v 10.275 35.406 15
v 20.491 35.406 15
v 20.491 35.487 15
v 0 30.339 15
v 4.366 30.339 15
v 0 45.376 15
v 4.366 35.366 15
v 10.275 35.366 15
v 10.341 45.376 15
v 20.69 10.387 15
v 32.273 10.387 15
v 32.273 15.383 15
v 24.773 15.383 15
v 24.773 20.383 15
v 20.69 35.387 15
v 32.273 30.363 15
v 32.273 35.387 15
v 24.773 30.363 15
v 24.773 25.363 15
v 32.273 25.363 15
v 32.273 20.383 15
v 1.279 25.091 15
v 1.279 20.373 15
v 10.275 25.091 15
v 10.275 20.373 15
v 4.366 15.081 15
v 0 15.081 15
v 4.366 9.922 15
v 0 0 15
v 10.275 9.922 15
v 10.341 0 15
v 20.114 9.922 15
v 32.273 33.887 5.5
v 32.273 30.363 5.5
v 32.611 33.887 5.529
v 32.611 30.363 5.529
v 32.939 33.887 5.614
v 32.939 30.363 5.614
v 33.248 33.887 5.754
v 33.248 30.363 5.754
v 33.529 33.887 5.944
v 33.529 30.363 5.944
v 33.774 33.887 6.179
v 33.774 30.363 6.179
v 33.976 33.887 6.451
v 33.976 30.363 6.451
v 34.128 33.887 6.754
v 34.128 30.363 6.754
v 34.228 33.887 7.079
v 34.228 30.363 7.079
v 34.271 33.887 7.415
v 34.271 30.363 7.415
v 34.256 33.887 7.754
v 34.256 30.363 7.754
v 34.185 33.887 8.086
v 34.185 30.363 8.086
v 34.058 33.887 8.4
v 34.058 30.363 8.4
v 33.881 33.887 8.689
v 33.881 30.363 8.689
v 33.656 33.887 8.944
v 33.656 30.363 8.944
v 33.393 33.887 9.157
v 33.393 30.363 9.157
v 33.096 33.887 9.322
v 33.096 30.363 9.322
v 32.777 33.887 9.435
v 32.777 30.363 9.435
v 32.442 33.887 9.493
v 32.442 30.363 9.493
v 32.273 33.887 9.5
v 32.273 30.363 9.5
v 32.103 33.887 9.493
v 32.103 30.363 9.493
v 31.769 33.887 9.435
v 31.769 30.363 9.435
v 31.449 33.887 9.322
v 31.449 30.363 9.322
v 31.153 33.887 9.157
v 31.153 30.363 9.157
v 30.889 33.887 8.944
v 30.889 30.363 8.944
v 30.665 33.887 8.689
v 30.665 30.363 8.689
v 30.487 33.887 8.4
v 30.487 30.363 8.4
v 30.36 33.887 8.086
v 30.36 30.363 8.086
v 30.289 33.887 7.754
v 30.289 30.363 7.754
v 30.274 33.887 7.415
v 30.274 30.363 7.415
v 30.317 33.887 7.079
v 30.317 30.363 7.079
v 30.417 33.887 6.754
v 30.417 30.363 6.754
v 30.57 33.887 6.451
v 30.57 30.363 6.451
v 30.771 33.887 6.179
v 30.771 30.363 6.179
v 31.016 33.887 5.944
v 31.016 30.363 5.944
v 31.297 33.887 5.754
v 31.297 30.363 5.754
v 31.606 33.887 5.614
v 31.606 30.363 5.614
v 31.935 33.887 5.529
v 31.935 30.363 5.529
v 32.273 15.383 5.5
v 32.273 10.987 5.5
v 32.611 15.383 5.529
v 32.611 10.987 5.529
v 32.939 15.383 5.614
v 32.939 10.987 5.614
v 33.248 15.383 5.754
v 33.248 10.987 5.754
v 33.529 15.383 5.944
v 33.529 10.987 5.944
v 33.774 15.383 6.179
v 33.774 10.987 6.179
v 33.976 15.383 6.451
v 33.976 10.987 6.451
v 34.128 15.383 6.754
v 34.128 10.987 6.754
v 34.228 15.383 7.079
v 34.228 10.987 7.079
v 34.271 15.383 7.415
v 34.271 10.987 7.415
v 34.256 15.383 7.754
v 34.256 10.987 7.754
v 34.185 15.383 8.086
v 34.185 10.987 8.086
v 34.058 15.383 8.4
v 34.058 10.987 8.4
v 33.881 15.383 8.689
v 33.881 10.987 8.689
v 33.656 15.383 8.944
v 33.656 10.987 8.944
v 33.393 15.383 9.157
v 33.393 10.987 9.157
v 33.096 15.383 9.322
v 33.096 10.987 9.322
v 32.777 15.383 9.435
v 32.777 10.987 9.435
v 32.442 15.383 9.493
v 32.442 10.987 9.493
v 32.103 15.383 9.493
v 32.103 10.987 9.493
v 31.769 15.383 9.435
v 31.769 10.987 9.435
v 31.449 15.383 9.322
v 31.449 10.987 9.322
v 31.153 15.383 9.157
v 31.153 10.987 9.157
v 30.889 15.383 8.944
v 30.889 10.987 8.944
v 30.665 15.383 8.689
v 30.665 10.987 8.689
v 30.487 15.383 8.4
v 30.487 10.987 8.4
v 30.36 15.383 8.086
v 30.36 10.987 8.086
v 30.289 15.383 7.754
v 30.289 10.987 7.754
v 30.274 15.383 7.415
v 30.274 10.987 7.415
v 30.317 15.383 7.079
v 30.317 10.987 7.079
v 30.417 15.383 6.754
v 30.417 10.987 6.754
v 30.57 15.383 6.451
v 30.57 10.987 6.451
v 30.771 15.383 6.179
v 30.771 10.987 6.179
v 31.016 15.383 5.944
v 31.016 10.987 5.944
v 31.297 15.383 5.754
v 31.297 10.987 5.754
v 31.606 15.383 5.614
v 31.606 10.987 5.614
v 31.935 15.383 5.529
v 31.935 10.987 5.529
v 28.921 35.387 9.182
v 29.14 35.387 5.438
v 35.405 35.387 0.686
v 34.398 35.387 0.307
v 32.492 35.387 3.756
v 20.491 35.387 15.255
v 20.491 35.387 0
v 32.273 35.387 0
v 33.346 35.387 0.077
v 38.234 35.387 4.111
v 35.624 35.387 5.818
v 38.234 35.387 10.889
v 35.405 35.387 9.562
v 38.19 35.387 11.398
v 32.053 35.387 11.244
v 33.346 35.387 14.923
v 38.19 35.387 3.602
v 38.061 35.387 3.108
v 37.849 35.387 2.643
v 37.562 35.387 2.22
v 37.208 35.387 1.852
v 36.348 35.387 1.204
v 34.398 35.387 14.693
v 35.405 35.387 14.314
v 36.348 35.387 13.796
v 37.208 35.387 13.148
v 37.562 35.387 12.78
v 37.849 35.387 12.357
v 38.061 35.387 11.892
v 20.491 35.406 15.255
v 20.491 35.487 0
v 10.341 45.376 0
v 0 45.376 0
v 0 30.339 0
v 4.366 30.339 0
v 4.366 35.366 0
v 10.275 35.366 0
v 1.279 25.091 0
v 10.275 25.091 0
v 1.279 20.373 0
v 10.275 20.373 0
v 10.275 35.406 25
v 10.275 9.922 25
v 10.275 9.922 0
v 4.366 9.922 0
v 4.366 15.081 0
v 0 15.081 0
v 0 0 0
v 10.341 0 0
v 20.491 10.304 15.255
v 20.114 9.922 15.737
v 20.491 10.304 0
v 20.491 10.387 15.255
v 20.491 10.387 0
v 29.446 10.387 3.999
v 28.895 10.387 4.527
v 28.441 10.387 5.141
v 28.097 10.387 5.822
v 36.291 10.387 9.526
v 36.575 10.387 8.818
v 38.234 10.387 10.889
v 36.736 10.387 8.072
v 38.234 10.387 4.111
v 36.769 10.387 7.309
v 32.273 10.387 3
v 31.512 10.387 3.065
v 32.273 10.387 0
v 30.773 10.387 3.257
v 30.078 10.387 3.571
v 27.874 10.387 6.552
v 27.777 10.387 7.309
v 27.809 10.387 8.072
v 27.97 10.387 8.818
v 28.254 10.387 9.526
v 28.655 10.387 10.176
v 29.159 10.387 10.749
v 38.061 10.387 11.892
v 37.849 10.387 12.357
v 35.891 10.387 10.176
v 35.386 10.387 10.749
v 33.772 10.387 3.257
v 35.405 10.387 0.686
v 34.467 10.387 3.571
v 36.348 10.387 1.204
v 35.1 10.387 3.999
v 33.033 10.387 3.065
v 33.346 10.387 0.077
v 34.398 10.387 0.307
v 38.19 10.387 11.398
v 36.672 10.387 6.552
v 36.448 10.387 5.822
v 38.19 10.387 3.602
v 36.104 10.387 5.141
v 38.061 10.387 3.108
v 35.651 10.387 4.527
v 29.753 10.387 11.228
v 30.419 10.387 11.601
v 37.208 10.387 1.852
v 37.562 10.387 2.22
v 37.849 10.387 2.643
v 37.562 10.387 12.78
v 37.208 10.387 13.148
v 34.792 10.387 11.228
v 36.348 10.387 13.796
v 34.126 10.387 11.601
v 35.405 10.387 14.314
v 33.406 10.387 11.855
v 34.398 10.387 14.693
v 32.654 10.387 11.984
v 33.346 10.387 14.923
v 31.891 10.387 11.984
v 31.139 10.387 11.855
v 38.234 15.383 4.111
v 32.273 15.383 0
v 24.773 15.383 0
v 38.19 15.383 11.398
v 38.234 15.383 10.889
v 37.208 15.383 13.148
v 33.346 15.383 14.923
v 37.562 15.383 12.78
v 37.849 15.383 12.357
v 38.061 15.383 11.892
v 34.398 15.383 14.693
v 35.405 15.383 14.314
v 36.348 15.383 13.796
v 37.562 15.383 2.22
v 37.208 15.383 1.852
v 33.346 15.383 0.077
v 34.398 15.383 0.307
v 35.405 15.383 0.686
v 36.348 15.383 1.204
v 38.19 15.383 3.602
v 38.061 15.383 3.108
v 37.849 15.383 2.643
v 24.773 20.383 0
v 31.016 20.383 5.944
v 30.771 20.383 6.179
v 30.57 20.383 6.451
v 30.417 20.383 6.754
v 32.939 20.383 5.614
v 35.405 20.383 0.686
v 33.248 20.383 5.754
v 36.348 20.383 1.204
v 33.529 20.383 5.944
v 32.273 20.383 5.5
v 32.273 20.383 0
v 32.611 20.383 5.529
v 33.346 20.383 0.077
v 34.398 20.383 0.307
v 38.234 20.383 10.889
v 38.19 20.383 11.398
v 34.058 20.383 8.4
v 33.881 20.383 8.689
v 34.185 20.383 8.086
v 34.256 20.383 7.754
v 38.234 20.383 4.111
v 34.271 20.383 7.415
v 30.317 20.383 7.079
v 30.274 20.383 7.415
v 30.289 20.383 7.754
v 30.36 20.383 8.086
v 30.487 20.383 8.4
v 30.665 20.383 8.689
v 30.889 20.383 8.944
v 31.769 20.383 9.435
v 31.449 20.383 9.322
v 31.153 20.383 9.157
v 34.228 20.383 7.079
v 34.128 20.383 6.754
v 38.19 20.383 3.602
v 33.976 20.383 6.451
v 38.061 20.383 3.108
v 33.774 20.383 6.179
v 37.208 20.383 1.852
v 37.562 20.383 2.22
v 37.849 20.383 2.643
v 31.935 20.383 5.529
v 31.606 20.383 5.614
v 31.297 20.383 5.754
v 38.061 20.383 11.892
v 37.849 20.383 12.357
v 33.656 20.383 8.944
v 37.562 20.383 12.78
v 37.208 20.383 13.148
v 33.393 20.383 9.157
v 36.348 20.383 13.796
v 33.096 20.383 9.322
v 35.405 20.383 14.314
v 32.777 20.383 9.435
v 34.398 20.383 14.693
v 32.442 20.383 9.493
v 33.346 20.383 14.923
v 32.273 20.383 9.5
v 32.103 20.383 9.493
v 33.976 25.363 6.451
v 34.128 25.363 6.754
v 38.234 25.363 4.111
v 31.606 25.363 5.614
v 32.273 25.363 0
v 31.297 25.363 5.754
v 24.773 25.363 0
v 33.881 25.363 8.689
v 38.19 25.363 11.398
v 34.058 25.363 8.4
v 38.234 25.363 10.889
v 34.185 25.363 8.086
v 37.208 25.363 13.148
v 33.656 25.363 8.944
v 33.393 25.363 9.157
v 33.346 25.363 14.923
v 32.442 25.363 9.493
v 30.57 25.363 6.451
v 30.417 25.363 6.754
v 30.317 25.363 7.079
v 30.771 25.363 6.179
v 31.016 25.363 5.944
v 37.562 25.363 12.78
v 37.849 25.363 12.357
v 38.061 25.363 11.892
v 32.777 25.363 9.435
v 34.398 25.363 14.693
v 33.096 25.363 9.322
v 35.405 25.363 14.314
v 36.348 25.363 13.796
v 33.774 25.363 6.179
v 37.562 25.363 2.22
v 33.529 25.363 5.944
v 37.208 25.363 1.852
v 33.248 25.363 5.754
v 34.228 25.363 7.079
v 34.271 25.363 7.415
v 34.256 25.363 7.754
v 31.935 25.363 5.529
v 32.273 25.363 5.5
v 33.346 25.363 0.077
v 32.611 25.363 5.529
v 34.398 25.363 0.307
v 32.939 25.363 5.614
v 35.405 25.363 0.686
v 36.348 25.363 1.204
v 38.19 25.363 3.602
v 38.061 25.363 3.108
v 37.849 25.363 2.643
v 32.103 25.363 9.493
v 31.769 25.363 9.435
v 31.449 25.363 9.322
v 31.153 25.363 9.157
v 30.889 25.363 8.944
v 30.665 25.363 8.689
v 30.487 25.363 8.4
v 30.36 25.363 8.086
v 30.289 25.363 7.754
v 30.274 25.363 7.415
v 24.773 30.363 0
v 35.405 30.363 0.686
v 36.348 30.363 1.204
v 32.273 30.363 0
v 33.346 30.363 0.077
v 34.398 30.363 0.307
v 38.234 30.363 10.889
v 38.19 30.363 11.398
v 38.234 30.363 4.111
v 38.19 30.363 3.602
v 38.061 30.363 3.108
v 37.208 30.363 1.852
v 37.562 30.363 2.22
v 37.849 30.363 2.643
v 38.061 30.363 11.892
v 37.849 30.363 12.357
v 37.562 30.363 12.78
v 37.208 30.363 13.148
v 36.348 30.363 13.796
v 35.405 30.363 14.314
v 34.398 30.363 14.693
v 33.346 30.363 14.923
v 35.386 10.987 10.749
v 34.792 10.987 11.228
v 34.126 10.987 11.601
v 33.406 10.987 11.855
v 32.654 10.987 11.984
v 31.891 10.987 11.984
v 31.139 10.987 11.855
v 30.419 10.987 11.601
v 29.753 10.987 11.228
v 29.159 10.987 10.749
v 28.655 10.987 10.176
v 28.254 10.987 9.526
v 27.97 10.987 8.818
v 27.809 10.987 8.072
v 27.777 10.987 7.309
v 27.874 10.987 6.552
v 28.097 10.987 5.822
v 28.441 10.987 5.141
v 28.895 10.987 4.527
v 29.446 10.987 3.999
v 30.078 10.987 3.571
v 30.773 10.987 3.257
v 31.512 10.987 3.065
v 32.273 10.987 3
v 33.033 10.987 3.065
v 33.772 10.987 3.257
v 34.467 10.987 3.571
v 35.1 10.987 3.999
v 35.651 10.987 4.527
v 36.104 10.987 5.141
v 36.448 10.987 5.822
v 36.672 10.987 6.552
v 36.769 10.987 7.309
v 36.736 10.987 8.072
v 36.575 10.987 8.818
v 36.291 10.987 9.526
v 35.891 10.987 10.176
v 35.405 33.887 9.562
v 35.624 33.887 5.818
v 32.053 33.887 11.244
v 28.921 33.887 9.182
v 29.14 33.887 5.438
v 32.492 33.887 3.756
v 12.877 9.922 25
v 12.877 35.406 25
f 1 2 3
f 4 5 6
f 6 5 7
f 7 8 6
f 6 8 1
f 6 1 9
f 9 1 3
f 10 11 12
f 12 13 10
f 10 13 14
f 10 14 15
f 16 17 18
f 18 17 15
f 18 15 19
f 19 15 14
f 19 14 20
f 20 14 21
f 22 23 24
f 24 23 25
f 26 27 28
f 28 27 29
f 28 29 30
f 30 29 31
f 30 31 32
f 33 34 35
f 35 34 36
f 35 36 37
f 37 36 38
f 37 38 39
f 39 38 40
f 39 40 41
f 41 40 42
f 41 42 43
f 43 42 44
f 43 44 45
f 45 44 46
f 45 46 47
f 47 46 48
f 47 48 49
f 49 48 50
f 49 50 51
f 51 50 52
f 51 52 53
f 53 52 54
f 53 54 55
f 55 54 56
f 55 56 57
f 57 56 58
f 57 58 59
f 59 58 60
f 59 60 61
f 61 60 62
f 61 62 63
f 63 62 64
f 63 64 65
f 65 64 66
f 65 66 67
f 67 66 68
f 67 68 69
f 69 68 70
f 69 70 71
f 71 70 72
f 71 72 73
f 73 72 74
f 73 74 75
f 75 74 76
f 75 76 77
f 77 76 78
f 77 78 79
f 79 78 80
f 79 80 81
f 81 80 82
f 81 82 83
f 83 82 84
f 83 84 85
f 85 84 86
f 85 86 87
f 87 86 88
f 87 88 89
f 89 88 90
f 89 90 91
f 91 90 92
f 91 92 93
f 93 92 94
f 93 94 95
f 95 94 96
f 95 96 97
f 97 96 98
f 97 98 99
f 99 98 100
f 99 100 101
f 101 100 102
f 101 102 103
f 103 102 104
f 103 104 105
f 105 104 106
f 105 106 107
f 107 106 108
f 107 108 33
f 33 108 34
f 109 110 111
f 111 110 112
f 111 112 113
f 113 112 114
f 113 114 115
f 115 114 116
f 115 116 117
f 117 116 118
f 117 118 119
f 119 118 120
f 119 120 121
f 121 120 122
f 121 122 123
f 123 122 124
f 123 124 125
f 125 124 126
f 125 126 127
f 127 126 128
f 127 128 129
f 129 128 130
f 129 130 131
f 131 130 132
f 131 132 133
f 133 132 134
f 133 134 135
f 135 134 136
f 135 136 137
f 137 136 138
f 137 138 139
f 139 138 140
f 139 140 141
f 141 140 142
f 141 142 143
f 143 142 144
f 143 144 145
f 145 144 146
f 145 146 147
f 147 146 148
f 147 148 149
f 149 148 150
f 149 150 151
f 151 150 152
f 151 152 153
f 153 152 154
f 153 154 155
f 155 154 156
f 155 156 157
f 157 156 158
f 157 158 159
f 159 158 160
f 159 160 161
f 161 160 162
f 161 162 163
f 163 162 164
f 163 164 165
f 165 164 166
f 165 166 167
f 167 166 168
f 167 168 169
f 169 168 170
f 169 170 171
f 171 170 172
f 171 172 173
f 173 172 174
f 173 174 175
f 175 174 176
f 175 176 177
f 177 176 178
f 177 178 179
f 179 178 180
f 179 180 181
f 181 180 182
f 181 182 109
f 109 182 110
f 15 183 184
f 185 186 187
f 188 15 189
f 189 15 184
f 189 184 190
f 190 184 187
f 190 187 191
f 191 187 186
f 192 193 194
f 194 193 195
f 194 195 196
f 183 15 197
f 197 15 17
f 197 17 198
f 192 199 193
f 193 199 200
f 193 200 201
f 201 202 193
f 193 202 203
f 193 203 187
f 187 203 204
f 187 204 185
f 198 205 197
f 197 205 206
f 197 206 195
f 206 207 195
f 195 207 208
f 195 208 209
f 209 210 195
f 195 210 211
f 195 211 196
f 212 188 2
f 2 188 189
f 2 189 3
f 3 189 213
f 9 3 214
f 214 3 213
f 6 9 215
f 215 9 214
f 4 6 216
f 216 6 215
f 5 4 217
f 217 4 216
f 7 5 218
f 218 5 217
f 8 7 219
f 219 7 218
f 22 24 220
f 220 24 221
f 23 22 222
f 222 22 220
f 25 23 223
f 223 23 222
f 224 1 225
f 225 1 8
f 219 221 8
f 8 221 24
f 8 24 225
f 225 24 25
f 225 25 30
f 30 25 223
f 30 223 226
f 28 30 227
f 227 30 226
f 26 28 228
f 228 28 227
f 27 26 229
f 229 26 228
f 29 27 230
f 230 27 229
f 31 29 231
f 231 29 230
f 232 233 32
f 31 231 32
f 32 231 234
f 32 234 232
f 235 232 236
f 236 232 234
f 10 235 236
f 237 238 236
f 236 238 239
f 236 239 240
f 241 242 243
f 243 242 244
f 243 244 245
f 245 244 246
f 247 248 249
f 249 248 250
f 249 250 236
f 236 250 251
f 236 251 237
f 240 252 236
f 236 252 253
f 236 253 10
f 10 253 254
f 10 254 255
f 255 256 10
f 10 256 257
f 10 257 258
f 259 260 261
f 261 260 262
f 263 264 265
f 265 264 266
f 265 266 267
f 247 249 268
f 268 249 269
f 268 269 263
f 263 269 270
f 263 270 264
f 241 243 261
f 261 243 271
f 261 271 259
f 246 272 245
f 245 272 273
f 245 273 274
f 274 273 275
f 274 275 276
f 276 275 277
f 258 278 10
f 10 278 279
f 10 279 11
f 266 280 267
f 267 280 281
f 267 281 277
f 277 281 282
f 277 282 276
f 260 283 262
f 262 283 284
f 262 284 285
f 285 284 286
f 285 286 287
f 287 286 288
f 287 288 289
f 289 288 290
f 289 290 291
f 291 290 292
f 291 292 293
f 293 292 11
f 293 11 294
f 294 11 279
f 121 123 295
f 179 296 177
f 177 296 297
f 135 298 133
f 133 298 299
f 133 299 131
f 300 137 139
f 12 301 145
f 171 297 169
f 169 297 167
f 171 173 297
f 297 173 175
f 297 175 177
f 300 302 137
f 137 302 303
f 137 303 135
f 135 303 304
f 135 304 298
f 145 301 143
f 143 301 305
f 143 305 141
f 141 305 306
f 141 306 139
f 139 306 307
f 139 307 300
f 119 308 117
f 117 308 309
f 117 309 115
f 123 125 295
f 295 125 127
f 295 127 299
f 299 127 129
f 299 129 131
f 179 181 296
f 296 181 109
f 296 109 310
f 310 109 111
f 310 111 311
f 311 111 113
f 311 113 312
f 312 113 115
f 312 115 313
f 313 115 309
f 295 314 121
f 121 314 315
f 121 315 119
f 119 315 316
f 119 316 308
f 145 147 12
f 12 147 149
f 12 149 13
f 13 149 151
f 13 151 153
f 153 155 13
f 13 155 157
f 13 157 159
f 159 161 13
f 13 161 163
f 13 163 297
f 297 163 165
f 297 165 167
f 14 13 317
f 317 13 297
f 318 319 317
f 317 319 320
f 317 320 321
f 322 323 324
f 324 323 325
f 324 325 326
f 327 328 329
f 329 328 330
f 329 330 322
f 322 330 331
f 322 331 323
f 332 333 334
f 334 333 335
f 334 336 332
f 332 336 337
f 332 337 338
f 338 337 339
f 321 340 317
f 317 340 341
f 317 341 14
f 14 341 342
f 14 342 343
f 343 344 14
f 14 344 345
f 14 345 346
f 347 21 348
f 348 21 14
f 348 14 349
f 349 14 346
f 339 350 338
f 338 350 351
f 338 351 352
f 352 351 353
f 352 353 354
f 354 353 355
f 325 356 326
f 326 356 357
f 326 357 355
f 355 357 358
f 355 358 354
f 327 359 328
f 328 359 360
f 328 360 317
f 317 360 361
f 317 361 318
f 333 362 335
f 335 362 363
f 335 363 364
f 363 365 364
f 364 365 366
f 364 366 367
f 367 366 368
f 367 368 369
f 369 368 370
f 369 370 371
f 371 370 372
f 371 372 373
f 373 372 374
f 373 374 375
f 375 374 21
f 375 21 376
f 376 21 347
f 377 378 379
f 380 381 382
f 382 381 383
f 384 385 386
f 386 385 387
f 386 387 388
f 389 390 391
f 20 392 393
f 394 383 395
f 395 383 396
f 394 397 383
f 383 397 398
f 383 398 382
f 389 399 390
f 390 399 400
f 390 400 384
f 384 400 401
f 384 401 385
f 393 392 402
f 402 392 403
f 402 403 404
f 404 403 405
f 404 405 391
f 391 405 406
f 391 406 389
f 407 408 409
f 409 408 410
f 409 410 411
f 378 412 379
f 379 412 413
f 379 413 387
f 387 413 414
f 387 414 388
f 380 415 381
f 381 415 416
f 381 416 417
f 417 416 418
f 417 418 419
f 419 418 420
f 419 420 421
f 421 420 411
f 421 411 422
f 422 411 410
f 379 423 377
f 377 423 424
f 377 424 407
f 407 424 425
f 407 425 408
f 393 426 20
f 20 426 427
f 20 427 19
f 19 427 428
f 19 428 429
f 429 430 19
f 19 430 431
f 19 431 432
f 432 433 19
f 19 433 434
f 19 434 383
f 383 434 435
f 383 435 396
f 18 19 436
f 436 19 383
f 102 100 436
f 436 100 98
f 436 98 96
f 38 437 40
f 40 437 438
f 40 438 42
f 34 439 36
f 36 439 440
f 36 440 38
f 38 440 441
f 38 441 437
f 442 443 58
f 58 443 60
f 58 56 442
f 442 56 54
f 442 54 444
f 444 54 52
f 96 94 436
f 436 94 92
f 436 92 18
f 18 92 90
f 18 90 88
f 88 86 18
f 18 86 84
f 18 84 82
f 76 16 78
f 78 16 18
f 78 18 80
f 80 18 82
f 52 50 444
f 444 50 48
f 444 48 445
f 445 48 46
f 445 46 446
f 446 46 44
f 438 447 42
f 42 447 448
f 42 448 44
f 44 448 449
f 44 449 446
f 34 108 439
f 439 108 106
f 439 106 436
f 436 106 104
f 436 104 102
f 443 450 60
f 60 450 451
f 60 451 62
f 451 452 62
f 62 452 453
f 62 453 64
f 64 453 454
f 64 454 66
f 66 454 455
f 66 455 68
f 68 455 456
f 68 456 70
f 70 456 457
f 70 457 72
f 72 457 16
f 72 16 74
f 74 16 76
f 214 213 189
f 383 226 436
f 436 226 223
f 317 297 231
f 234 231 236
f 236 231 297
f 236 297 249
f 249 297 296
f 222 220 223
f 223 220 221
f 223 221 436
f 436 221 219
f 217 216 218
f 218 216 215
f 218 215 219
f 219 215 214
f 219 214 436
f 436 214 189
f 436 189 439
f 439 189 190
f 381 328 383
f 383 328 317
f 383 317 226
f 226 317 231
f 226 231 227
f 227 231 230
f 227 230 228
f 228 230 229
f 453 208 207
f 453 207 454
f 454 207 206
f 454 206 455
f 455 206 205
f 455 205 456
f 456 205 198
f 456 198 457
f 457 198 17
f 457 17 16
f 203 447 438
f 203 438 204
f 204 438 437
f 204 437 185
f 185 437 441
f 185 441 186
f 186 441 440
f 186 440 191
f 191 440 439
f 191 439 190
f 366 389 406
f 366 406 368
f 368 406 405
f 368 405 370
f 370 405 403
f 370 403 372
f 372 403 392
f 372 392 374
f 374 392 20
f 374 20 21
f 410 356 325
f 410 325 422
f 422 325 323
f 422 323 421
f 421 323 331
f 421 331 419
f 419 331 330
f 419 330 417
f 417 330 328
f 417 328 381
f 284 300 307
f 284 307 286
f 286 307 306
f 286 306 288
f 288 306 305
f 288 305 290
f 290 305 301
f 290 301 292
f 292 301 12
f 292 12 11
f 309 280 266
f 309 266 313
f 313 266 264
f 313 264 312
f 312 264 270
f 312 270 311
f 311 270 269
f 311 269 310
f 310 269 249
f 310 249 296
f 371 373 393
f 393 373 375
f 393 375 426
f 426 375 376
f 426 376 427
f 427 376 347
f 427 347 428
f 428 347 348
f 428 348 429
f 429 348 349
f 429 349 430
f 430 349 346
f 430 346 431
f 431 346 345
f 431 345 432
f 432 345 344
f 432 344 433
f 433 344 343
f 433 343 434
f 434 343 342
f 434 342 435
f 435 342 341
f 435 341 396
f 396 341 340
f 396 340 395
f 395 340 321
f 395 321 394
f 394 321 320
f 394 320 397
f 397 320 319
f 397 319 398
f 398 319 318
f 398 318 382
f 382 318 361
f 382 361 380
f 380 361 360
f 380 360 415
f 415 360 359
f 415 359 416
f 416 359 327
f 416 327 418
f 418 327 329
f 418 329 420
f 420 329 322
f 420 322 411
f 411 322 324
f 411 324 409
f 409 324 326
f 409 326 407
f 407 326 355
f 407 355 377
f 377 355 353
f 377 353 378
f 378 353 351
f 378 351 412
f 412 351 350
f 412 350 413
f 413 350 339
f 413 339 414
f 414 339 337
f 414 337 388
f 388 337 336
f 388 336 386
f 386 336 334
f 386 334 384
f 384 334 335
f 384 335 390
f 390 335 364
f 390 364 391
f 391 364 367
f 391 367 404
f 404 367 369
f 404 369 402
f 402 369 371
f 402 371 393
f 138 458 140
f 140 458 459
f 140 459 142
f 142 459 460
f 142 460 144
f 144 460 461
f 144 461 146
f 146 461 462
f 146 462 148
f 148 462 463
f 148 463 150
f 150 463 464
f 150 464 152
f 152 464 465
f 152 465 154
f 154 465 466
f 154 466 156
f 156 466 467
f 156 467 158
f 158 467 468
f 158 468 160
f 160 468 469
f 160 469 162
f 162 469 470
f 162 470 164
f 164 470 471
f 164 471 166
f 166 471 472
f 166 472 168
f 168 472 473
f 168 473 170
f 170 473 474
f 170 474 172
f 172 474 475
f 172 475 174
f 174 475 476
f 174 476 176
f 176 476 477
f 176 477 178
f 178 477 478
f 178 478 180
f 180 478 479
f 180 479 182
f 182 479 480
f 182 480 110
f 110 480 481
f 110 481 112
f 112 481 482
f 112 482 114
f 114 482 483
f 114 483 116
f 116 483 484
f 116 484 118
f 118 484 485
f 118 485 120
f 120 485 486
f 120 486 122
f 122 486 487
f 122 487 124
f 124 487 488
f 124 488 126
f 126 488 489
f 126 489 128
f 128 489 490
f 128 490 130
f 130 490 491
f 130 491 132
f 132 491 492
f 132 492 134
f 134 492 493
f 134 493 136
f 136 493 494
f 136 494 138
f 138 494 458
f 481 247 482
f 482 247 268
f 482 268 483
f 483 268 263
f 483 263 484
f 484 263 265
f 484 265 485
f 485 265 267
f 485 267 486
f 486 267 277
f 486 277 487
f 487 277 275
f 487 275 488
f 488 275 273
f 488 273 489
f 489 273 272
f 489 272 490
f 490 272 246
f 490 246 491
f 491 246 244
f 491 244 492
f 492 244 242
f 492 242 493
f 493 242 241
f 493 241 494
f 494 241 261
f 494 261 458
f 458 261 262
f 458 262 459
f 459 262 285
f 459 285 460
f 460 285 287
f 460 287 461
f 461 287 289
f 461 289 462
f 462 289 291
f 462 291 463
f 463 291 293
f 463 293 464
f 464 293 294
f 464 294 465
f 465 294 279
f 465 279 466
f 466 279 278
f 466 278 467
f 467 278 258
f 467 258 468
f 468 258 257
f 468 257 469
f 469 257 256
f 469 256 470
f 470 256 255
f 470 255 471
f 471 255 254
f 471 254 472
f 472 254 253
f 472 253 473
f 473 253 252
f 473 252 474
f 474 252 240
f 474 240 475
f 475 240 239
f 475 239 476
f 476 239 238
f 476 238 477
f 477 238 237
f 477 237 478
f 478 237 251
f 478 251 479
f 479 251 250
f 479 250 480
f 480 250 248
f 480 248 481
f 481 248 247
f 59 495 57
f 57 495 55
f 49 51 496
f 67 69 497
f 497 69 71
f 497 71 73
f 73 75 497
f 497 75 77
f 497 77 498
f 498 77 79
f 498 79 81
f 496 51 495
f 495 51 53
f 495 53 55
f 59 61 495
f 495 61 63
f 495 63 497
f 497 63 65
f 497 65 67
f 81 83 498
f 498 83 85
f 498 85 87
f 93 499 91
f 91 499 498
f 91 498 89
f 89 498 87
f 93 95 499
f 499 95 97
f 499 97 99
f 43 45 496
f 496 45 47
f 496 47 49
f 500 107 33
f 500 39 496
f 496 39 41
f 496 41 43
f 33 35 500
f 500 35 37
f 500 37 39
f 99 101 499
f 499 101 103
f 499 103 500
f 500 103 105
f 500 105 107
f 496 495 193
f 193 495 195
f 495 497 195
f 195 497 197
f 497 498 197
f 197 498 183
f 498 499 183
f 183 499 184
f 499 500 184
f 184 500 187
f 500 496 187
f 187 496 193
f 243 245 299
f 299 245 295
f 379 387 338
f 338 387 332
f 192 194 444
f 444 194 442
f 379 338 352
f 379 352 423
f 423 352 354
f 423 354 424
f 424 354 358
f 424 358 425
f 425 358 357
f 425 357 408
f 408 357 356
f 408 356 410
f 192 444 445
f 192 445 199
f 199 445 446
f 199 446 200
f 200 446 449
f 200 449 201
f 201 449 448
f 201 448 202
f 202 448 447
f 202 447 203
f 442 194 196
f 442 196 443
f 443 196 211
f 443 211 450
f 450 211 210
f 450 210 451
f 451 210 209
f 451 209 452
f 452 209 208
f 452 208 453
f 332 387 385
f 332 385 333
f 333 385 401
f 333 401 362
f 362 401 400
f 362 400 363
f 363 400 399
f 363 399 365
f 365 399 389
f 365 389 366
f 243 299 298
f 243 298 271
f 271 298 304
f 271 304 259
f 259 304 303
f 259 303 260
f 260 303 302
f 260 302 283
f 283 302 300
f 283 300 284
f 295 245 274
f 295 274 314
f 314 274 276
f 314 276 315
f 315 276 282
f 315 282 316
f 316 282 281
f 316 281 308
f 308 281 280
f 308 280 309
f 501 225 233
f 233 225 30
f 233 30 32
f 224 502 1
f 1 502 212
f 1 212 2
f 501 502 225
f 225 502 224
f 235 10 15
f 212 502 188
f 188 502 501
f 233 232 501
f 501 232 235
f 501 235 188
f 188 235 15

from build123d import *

# Parameters (mm, degrees)
BOSS_EXTRUDE1_DEPTH = 15
FILLET1_R           = 7.5
SKETCH2_R           = 2
CUT_EXTRUDE1_DEPTH  = 56.055379886
SKETCH3_R           = 4.5
CUT_EXTRUDE2_DEPTH  = 0.6
CUT_EXTRUDE3_DEPTH  = 1.5
SKETCH5_W           = 11.340962939
SKETCH5_H           = 24.83561836
CUT_EXTRUDE4_DEPTH  = 56.308893581
FILLET2_R           = 3
SKETCH6_W           = 2.415249458
SKETCH6_H           = 25.484257417
BOSS_EXTRUDE2_DEPTH = 10
CHAMFER1_SIZE       = 8
CHAMFER1_SIZE_2     = 10.239533058


# Some blends are built 0.0001 mm under size
with BuildPart() as part:
    # Sketch1 → Boss-Extrude1 (new body)
    with BuildSketch(Plane.XY):
        Polygon((27.272753899, 35.386642786), (20.490738927, 35.386642786), (20.490738927, 35.487239574), (10.340798609, 45.376041655), (0, 45.376041655), (0, 30.338888881), (4.365624999, 30.338888881), (4.365624999, 35.365972213), (10.274652775, 35.365972213), (10.274652775, 25.091319438), (1.278819444, 25.091319438), (1.278819444, 20.372916662), (10.274652775, 20.372916662), (10.274652775, 9.921874998), (4.365624999, 9.921874998), (4.365624999, 15.081249996), (0, 15.081249996), (0, 0), (10.340798609, 0), (20.490738927, 10.304280596), (20.490738927, 10.386962888), (27.272753899, 10.386962888), (39.772593849, 10.386962888), (39.772593849, 15.38338487), (24.772648106, 15.38338487), (24.772648106, 20.383251948), (39.772593849, 20.383251948), (39.772593849, 22.886802837), (39.772593849, 25.362792962), (24.772648106, 25.362792962), (24.772648106, 30.36266004), (39.772593849, 30.36266004), (39.772593849, 35.386642786), align=None)
    extrude(amount=BOSS_EXTRUDE1_DEPTH)

    # Fillet1
    fillet1_edges = [part.edges().sort_by_distance(p)[0] for p in [
        (39.772593849, 32.874651413, 0),
        (39.772593849, 22.873022455, 0),
        (39.772593849, 12.885173879, 0),
        (39.772593849, 32.874651413, 15),
        (39.772593849, 22.873022455, 15),
        (39.772593849, 12.885173879, 15),
    ]]
    fillet(fillet1_edges, radius=FILLET1_R - 0.0001)  # a hair under: the kernel refuses the full size

    # Sketch2 → Cut-Extrude1 (cut, through all)
    with BuildSketch(Plane.XZ.offset(-10.386962888)):
        with Locations(Location((32.272593849, 7.5, 0), (0, 0, 270))):
            Circle(SKETCH2_R)
    extrude(amount=-CUT_EXTRUDE1_DEPTH, mode=Mode.SUBTRACT)

    # Sketch3 → Cut-Extrude2 (cut)
    with BuildSketch(Plane(origin=(0, 10.386962888, 0), x_dir=(-1, 0, 0), z_dir=(0, -1, 0))):
        with Locations(Location((-32.272593849, -7.5, 0), (0, 0, 90))):
            Circle(SKETCH3_R)
    extrude(amount=-CUT_EXTRUDE2_DEPTH, mode=Mode.SUBTRACT)

    # Sketch4 → Cut-Extrude3 (cut)
    with BuildSketch(Plane(origin=(0, 35.386642786, 0), x_dir=(1, 0, 0), z_dir=(0, 1, 0))):
        Polygon((35.624325063, -5.818215869), (32.491991675, -3.756423556), (29.14026046, -5.438207687), (28.920862634, -9.181784131), (32.053196023, -11.243576444), (35.404927237, -9.561792313), align=None)
    extrude(amount=-CUT_EXTRUDE3_DEPTH, mode=Mode.SUBTRACT)

    # Sketch5 → Cut-Extrude4 (cut, through all)
    with BuildSketch(Plane(origin=(0, 35.386642786, 0), x_dir=(1, 0, 0), z_dir=(0, 1, 0))):
        with Locations((43.904057381, -8.645001066)):
            Rectangle(SKETCH5_W, SKETCH5_H)
    extrude(amount=-CUT_EXTRUDE4_DEPTH, mode=Mode.SUBTRACT)

    # Fillet2
    fillet2_edges = [part.edges().sort_by_distance(p)[0] for p in [
        (38.233575911, 12.885173879, 2.948374426),
        (38.233575911, 12.885173879, 12.051625574),
        (38.233575911, 22.873022455, 12.051625574),
        (38.233575911, 22.873022455, 2.948374426),
        (38.233575911, 32.874651413, 12.051625574),
        (38.233575911, 32.874651413, 2.948374426),
    ]]
    fillet(fillet2_edges, radius=FILLET2_R)

    # Sketch6 → Boss-Extrude2 (add)
    with BuildSketch(Plane.XY.offset(15)):
        with Locations((11.482277504, 22.664003707)):
            Rectangle(SKETCH6_W, SKETCH6_H)
    extrude(amount=BOSS_EXTRUDE2_DEPTH)

    # Chamfer1
    # the kernel refuses this chamfer: 10.239533058, 8 mm, written as the material it adds along each edge
    with BuildSketch(Plane(origin=(12.689902233, 9.921874998, 15), x_dir=(0.9992360216896828, 0, -0.03908161918057676), z_dir=(0, 1, 0))) as chamfer1_piece_1_section:
        Polygon((CHAMFER1_SIZE * 0.99923602169, -CHAMFER1_SIZE * 0.0390816191806), (-CHAMFER1_SIZE_2 * 0.0390816191788, -CHAMFER1_SIZE_2 * 0.999236021645), (0, 0), align=None)
    chamfer1_piece_1 = extrude(amount=25.484257417, mode=Mode.PRIVATE)
    chamfer1_piece_1 = split(chamfer1_piece_1, bisect_by=Plane(origin=(20.793346788, 10.386962888, 14.678631533), z_dir=(0, 1, 0)), keep=Keep.TOP, mode=Mode.PRIVATE)
    chamfer1_piece_1 = split(chamfer1_piece_1, bisect_by=Plane(origin=(20.737221422, 10.554511111, 14.678631533), z_dir=(0.7124220763083485, -0.7017512274221556, 0)), keep=Keep.TOP, mode=Mode.PRIVATE)
    add(chamfer1_piece_1)
    with BuildSketch(Plane(origin=(12.689902233, 9.921874998, 15), x_dir=(0.9992360216896828, 0, -0.03908161918057676), z_dir=(0, 1, 0))) as chamfer1_piece_2_section:
        Polygon((CHAMFER1_SIZE * 0.99923602169, -CHAMFER1_SIZE * 0.0390816191806), (-CHAMFER1_SIZE_2 * 0.0390816191788, -CHAMFER1_SIZE_2 * 0.999236021645), (0, 0), align=None)
    chamfer1_piece_2 = extrude(amount=25.484257417, mode=Mode.PRIVATE)
    chamfer1_piece_2 = split(chamfer1_piece_2, bisect_by=Plane(origin=(15.274873459, 10.386962888, 18.392715242), z_dir=(0, -1, 0)), keep=Keep.TOP, mode=Mode.PRIVATE)
    chamfer1_piece_2 = split(chamfer1_piece_2, bisect_by=Plane(origin=(20.490738927, 10.154752313, 18.392715242), z_dir=(-1, 0, 0)), keep=Keep.TOP, mode=Mode.PRIVATE)
    chamfer1_piece_2 = split(chamfer1_piece_2, bisect_by=Plane(origin=(17.84740539, 7.620752455, 18.392715242), z_dir=(-0.7124220763083485, 0.7017512274221556, 0)), keep=Keep.TOP, mode=Mode.PRIVATE)
    chamfer1_piece_2 = split(chamfer1_piece_2, bisect_by=Plane(origin=(15.274873459, 10.154752313, 25), z_dir=(0, 0, -1)), keep=Keep.TOP, mode=Mode.PRIVATE)
    add(chamfer1_piece_2)
    with BuildSketch(Plane(origin=(12.689902233, 9.921874998, 15), x_dir=(0.9992360216896828, 0, -0.03908161918057676), z_dir=(0, 1, 0))) as chamfer1_piece_3_section:
        Polygon((CHAMFER1_SIZE * 0.99923602169, -CHAMFER1_SIZE * 0.0390816191806), (-CHAMFER1_SIZE_2 * 0.0390816191788, -CHAMFER1_SIZE_2 * 0.999236021645), (0, 0), align=None)
    chamfer1_piece_3 = extrude(amount=25.484257417, mode=Mode.PRIVATE)
    chamfer1_piece_3 = split(chamfer1_piece_3, bisect_by=Plane(origin=(20.673018583, 35.386642786, 14.762443719), z_dir=(0, -1, 0)), keep=Keep.TOP, mode=Mode.PRIVATE)
    chamfer1_piece_3 = split(chamfer1_piece_3, bisect_by=Plane(origin=(20.673018583, 10.386962888, 14.762443719), z_dir=(0, 1, 0)), keep=Keep.TOP, mode=Mode.PRIVATE)
    chamfer1_piece_3 = split(chamfer1_piece_3, bisect_by=Plane(origin=(20.490738927, 22.896544527, 14.762443719), z_dir=(1, 0, 0)), keep=Keep.TOP, mode=Mode.PRIVATE)
    chamfer1_piece_3 = split(chamfer1_piece_3, bisect_by=Plane(origin=(26.875918459, 16.786553348, 14.762443719), z_dir=(-0.7124220763083485, 0.7017512274221556, 0)), keep=Keep.TOP, mode=Mode.PRIVATE)
    chamfer1_piece_3 = split(chamfer1_piece_3, bisect_by=Plane(origin=(26.87746344, 29.264833071, 14.762443719), z_dir=(-0.6978327483962767, -0.7162607453055758, 0)), keep=Keep.TOP, mode=Mode.PRIVATE)
    add(chamfer1_piece_3)
    with BuildSketch(Plane(origin=(12.689902233, 9.921874998, 15), x_dir=(0.9992360216896828, 0, -0.03908161918057676), z_dir=(0, 1, 0))) as chamfer1_piece_4_section:
        Polygon((CHAMFER1_SIZE * 0.99923602169, -CHAMFER1_SIZE * 0.0390816191806), (-CHAMFER1_SIZE_2 * 0.0390816191788, -CHAMFER1_SIZE_2 * 0.999236021645), (0, 0), align=None)
    chamfer1_piece_4 = extrude(amount=25.484257417, mode=Mode.PRIVATE)
    chamfer1_piece_4 = split(chamfer1_piece_4, bisect_by=Plane(origin=(15.290163511, 35.386642786, 18.382453995), z_dir=(0, -1, 0)), keep=Keep.TOP, mode=Mode.PRIVATE)
    chamfer1_piece_4 = split(chamfer1_piece_4, bisect_by=Plane(origin=(15.290163511, 10.386962888, 18.382453995), z_dir=(0, 1, 0)), keep=Keep.TOP, mode=Mode.PRIVATE)
    chamfer1_piece_4 = split(chamfer1_piece_4, bisect_by=Plane(origin=(20.490738927, 22.886802837, 18.382453995), z_dir=(-1, 0, 0)), keep=Keep.TOP, mode=Mode.PRIVATE)
    chamfer1_piece_4 = split(chamfer1_piece_4, bisect_by=Plane(origin=(15.290163511, 22.886802837, 25), z_dir=(0, 0, -1)), keep=Keep.TOP, mode=Mode.PRIVATE)
    add(chamfer1_piece_4)
    with BuildSketch(Plane(origin=(12.689902233, 9.921874998, 15), x_dir=(0.9992360216896828, 0, -0.03908161918057676), z_dir=(0, 1, 0))) as chamfer1_piece_5_section:
        Polygon((CHAMFER1_SIZE * 0.99923602169, -CHAMFER1_SIZE * 0.0390816191806), (-CHAMFER1_SIZE_2 * 0.0390816191788, -CHAMFER1_SIZE_2 * 0.999236021645), (0, 0), align=None)
    chamfer1_piece_5 = extrude(amount=25.484257417, mode=Mode.PRIVATE)
    chamfer1_piece_5 = split(chamfer1_piece_5, bisect_by=Plane(origin=(20.802968311, 35.386642786, 14.671925701), z_dir=(0, -1, 0)), keep=Keep.TOP, mode=Mode.PRIVATE)
    chamfer1_piece_5 = split(chamfer1_piece_5, bisect_by=Plane(origin=(20.752085711, 35.232616736, 14.671925701), z_dir=(0.6978327483962767, 0.7162607453055758, 0)), keep=Keep.TOP, mode=Mode.PRIVATE)
    add(chamfer1_piece_5)
    with BuildSketch(Plane(origin=(12.689902233, 9.921874998, 15), x_dir=(0.9992360216896828, 0, -0.03908161918057676), z_dir=(0, 1, 0))) as chamfer1_piece_6_section:
        Polygon((CHAMFER1_SIZE * 0.99923602169, -CHAMFER1_SIZE * 0.0390816191806), (-CHAMFER1_SIZE_2 * 0.0390816191788, -CHAMFER1_SIZE_2 * 0.999236021645), (0, 0), align=None)
    chamfer1_piece_6 = extrude(amount=25.484257417, mode=Mode.PRIVATE)
    chamfer1_piece_6 = split(chamfer1_piece_6, bisect_by=Plane(origin=(15.290163511, 35.386642786, 18.382453995), z_dir=(0, 1, 0)), keep=Keep.TOP, mode=Mode.PRIVATE)
    chamfer1_piece_6 = split(chamfer1_piece_6, bisect_by=Plane(origin=(20.490738927, 35.396387601, 18.382453995), z_dir=(-1, 0, 0)), keep=Keep.TOP, mode=Mode.PRIVATE)
    chamfer1_piece_6 = split(chamfer1_piece_6, bisect_by=Plane(origin=(15.290163511, 35.396387601, 25), z_dir=(0, 0, -1)), keep=Keep.TOP, mode=Mode.PRIVATE)
    add(chamfer1_piece_6)


solid = part.part
